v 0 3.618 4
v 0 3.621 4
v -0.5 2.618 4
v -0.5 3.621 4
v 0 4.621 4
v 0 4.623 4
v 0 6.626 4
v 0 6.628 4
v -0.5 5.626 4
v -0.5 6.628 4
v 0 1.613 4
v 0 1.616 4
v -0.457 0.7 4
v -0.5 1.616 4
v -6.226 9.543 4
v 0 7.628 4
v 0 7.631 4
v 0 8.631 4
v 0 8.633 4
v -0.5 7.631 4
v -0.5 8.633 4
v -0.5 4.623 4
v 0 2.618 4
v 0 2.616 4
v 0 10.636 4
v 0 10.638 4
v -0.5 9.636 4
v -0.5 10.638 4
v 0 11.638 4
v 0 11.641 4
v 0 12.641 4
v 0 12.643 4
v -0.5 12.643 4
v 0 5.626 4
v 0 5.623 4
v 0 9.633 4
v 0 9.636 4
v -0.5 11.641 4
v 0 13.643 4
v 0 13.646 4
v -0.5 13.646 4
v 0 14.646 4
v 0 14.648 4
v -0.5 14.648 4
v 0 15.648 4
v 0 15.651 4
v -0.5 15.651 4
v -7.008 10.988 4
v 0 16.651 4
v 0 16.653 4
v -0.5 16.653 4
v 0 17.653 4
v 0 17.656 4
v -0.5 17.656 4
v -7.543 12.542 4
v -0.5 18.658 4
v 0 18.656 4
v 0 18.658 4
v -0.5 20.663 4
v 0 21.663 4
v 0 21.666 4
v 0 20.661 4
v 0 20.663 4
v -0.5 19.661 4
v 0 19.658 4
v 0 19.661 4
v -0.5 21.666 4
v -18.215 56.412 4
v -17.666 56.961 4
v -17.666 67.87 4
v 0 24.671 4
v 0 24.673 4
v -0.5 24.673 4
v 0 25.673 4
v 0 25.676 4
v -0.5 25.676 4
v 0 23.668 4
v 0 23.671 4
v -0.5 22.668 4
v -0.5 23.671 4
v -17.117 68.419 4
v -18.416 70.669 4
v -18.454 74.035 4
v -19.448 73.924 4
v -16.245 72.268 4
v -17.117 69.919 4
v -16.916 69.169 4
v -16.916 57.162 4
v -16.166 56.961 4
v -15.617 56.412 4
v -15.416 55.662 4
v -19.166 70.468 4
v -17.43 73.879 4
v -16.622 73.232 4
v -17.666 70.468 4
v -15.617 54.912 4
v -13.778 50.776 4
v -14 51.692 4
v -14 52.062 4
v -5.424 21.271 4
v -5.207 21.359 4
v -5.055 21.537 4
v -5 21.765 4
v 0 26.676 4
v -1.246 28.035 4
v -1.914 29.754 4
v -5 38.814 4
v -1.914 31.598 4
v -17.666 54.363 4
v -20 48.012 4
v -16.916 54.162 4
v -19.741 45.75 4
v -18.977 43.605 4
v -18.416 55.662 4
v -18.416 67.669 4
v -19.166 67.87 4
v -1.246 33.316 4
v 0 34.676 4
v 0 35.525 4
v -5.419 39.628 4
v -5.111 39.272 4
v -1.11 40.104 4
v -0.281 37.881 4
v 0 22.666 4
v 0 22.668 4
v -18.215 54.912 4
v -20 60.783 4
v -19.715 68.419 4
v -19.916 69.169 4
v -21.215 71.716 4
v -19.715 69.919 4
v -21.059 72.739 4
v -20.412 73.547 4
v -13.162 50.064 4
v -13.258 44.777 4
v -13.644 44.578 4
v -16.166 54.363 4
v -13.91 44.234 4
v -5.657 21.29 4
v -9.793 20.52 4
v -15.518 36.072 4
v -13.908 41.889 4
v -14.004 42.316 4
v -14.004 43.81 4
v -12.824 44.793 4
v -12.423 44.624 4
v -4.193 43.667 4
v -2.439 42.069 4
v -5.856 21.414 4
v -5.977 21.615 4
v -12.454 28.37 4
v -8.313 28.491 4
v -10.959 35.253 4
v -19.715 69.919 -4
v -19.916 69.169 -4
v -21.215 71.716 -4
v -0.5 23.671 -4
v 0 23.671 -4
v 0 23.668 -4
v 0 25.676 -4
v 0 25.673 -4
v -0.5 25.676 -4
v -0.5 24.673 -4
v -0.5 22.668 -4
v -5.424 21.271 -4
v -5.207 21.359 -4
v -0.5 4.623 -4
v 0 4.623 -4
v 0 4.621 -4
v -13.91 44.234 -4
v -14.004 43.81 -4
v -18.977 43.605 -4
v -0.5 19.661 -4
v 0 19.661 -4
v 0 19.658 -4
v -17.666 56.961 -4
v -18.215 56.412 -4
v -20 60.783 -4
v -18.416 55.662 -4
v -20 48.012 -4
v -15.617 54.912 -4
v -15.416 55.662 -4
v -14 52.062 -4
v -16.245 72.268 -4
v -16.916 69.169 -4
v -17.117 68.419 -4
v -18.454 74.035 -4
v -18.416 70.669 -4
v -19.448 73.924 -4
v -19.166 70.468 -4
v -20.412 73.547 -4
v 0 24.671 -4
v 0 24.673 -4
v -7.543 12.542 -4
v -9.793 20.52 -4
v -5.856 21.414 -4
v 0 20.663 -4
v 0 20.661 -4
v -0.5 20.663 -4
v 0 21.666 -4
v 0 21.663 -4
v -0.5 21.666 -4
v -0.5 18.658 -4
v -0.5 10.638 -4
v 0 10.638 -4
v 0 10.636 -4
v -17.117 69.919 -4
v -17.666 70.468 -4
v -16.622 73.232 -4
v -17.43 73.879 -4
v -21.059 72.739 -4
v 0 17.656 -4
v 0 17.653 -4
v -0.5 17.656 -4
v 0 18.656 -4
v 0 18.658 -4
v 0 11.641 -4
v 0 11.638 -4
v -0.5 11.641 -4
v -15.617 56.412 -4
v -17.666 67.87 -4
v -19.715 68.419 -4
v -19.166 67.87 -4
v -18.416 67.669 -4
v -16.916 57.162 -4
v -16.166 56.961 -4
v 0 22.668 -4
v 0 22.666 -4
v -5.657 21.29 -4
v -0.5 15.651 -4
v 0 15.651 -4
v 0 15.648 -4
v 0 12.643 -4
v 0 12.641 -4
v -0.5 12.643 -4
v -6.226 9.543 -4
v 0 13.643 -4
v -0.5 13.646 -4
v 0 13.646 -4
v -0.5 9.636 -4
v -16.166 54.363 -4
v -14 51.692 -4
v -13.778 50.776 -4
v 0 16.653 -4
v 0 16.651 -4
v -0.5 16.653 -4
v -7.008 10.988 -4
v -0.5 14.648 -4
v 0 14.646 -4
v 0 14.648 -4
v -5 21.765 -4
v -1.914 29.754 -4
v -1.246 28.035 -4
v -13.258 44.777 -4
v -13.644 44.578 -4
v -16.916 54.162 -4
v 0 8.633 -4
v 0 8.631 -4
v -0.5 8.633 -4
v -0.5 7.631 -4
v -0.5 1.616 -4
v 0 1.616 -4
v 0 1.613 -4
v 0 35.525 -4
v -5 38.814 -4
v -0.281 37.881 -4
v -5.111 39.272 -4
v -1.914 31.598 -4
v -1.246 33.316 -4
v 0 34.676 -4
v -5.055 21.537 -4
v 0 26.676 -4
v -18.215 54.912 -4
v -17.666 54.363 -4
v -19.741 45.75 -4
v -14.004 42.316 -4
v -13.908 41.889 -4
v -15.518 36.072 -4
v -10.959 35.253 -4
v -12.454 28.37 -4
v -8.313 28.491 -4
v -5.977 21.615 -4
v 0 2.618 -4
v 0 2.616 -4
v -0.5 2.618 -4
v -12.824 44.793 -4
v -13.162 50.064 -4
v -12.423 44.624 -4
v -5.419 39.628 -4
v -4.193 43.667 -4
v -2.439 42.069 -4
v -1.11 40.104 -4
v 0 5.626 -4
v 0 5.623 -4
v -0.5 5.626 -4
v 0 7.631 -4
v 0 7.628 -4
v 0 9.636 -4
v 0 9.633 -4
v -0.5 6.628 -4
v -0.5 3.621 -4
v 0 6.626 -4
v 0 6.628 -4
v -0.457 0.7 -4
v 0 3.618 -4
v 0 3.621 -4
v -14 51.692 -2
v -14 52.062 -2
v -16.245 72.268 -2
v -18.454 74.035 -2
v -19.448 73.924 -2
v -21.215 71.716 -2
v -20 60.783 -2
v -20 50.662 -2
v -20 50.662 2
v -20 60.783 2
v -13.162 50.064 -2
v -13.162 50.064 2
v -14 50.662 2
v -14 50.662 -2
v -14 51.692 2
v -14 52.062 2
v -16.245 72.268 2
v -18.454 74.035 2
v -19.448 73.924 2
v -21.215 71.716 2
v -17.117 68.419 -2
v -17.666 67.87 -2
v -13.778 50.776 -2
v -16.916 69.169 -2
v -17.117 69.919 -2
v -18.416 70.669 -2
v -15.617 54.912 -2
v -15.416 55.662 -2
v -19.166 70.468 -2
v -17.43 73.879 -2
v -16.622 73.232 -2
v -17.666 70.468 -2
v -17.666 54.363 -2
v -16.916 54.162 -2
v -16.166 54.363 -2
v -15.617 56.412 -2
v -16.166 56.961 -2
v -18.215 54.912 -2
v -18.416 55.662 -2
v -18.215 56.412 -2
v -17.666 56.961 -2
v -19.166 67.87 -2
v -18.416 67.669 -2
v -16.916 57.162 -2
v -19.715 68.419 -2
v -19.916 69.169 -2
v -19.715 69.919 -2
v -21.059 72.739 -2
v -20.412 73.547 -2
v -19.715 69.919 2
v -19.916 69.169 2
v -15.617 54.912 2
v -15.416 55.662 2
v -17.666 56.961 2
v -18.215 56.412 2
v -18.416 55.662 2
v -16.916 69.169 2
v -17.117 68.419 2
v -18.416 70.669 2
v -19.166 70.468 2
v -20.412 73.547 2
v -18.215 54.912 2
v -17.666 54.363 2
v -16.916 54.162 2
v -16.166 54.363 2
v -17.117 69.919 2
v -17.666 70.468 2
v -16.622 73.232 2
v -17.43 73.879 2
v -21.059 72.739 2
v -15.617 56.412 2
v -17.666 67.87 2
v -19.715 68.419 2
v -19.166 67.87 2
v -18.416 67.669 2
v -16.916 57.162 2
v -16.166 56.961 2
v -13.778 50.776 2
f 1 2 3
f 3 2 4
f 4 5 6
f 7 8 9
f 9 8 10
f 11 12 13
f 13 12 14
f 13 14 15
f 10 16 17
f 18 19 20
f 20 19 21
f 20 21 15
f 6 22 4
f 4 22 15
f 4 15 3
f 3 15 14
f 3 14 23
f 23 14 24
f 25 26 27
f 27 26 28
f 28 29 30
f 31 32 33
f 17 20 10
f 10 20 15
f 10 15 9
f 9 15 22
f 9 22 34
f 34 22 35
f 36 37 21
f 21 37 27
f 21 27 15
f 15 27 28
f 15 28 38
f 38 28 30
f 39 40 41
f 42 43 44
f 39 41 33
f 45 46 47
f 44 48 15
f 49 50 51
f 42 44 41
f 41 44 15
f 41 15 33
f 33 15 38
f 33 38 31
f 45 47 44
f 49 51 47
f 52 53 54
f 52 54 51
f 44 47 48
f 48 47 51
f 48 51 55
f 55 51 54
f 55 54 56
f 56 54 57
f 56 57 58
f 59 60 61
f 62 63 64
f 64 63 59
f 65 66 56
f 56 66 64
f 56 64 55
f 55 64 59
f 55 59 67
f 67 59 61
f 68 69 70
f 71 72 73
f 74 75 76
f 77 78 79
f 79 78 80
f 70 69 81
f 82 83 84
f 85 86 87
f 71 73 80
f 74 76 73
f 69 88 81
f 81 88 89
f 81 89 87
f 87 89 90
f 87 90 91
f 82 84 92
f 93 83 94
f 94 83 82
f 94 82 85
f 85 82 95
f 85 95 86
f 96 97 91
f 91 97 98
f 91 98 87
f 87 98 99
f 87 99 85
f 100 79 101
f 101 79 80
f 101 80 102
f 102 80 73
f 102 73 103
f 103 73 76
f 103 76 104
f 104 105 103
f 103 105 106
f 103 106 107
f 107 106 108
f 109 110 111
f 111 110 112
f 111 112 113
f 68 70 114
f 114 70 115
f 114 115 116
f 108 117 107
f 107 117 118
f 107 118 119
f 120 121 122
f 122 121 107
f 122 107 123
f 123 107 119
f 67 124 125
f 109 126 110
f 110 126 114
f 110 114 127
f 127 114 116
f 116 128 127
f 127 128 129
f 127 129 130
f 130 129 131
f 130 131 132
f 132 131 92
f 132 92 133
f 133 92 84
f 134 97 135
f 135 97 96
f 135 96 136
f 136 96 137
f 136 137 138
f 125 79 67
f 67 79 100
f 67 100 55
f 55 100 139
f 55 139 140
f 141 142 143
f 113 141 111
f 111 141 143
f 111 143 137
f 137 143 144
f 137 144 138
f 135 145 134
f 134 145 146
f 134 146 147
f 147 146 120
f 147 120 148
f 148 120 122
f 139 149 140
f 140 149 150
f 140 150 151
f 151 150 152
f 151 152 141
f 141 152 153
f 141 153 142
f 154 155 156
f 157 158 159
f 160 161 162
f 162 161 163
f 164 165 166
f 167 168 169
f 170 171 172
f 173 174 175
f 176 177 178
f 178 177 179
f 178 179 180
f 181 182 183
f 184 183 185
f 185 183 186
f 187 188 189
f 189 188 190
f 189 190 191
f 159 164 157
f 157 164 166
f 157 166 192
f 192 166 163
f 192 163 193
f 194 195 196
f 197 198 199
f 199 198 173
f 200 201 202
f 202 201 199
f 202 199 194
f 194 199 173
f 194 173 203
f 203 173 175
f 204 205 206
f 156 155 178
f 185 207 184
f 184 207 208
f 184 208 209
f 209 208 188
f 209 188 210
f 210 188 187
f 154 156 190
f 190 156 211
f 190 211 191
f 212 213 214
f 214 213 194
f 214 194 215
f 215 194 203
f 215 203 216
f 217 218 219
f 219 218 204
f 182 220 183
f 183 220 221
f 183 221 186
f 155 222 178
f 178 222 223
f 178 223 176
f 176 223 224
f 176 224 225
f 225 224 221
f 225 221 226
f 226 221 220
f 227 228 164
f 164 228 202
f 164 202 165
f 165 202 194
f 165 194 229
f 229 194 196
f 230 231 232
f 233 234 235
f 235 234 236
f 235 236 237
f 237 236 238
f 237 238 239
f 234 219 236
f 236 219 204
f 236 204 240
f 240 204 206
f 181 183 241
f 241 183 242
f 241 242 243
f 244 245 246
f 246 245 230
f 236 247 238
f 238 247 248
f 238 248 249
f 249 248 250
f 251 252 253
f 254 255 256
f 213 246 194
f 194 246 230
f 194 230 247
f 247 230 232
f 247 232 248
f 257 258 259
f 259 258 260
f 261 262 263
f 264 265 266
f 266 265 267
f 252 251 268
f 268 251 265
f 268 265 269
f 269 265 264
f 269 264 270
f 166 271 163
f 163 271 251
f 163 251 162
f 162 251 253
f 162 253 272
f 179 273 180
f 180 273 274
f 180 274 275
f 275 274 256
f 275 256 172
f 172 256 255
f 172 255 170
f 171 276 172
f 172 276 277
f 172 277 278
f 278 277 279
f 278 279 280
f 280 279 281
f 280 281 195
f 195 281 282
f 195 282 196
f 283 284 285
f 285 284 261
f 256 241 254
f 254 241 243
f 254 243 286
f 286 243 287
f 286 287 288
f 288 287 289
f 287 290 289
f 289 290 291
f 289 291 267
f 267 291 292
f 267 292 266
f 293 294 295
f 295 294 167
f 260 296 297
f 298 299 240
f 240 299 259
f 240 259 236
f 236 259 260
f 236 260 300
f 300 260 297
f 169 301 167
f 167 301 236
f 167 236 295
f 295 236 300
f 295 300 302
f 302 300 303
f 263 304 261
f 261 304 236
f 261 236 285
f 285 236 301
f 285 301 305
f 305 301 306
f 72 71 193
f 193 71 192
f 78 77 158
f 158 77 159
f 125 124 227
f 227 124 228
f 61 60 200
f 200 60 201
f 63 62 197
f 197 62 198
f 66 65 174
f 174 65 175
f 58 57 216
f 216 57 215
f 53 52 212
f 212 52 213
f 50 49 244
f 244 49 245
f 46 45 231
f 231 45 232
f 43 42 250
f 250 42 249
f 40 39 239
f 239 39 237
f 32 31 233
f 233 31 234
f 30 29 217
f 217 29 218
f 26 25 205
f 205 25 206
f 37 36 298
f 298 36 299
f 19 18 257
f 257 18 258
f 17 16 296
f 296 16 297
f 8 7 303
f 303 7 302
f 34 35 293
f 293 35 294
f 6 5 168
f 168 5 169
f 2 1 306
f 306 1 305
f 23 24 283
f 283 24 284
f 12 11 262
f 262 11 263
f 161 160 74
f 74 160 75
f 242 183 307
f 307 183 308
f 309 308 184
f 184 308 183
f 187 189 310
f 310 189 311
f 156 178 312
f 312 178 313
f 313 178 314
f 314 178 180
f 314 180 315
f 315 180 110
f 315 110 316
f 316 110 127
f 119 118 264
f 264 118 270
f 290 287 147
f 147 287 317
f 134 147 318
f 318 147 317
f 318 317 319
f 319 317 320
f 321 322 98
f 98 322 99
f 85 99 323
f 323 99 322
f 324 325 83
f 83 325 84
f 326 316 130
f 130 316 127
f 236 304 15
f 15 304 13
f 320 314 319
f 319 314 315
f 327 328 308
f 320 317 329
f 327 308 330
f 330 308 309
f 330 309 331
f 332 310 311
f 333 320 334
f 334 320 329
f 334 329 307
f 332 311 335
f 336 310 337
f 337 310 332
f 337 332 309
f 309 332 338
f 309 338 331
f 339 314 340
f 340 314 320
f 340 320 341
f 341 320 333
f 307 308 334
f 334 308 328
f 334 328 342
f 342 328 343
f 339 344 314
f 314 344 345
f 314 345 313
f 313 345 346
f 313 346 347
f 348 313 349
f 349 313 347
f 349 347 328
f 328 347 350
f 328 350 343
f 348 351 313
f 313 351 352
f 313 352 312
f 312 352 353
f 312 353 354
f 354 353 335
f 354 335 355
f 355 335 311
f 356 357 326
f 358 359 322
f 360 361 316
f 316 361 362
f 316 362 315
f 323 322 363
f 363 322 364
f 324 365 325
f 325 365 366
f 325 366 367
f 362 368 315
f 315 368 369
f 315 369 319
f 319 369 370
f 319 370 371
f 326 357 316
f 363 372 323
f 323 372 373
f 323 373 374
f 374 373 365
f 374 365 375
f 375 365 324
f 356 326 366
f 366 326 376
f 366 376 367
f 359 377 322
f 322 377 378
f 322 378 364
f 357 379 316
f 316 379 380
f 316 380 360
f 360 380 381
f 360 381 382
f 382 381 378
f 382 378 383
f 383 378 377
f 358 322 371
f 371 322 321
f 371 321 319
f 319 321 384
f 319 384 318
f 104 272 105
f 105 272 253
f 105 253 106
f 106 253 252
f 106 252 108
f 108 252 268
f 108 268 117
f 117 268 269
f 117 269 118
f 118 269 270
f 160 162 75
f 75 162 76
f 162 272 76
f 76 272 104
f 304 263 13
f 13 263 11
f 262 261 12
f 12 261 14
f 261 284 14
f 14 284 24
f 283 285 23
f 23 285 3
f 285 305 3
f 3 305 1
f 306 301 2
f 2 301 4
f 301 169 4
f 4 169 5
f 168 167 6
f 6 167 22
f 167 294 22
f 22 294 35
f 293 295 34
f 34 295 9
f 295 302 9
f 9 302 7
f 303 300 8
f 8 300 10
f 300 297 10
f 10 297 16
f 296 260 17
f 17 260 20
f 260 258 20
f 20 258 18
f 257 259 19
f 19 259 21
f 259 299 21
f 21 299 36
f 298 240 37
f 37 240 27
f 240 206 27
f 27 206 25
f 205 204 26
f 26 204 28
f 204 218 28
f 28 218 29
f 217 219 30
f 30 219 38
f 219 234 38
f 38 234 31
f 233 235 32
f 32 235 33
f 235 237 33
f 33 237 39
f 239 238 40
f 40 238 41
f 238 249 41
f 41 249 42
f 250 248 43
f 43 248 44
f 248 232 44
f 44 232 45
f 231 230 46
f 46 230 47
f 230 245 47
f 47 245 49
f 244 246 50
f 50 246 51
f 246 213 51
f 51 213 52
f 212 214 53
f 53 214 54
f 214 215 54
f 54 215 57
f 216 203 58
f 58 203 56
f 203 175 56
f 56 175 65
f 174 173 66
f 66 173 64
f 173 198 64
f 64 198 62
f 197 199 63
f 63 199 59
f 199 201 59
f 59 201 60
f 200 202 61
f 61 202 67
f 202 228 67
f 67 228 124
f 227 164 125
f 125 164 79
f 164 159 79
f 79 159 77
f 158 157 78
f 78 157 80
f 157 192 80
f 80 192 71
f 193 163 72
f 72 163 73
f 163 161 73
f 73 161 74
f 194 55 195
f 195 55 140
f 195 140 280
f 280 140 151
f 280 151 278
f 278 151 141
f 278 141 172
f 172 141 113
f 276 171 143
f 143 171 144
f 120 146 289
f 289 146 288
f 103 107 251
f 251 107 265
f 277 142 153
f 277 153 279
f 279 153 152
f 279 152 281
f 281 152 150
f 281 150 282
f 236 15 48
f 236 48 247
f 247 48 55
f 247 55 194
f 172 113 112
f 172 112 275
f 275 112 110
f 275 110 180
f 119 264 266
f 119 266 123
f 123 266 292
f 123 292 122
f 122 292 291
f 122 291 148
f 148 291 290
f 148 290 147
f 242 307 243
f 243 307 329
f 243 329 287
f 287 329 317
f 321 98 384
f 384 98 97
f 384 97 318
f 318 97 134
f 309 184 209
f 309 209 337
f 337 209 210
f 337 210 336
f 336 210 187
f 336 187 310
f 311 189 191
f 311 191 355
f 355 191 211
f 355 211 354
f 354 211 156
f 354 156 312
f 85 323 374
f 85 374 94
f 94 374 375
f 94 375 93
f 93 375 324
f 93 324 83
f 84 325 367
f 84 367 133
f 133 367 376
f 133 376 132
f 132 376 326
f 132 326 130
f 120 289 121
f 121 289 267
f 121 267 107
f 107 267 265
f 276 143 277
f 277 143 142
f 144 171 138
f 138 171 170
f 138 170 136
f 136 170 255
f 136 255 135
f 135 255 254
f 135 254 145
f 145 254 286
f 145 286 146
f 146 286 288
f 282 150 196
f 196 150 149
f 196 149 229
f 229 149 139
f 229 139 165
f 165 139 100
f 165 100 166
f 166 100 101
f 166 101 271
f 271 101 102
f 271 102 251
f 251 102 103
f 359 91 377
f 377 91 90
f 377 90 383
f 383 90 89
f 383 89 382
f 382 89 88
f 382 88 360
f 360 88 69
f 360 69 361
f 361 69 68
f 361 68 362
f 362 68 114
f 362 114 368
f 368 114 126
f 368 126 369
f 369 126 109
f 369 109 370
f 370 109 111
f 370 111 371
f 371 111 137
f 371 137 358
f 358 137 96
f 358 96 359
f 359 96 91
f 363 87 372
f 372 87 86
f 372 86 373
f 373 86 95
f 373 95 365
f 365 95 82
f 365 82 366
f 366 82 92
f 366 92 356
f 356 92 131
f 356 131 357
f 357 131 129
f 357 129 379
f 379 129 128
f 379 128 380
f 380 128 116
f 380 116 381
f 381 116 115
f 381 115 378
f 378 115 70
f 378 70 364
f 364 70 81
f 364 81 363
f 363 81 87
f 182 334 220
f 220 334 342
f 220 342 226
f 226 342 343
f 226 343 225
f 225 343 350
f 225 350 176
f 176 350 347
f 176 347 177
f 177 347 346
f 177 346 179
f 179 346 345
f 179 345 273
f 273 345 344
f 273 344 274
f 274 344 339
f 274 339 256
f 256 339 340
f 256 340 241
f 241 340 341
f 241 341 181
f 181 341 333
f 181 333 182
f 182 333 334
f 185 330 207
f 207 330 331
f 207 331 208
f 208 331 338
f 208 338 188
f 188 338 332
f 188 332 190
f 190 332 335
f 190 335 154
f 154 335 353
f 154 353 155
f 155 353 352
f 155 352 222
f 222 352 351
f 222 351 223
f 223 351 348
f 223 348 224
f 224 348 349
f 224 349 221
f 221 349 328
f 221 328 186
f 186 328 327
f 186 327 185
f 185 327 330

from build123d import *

# Parameters (mm, degrees)
BOSS_EXTRUDE1_DEPTH     = 4
SKETCH2_W               = 20
SKETCH2_H               = 25
CUT_EXTRUDE1_DEPTH      = 2
CUT_EXTRUDE2_DEPTH      = 78.699873386
CUT_EXTRUDE2_DEPTH_BACK = 78.699873386
CUT_EXTRUDE3_DEPTH      = 78.699873386
LPATTERN3_START         = -4
LPATTERN3_DEPTH         = 8
CUT_EXTRUDE4_DEPTH      = 78.699873386
CUT_EXTRUDE5_DEPTH      = 78.699873386
FILLET1_R               = 10
FILLET2_R               = 2
FILLET3_R               = 1
FILLET4_R               = 0.5
SKETCH7_R               = 1.5
CUT_EXTRUDE6_DEPTH      = 78.443079806


# Read off the part's stored shape, not the designer's step: LPattern3
with BuildPart() as part:
    # Sketch1 → Boss-Extrude1 (new, symmetric)
    with BuildSketch(Plane.XY):
        Polygon((0, 0), (-20, 30.652242985), (-20, 60.782242985), (-21.435566599, 73.70273634), (-16.466146078, 74.25487734), (-14.000284373, 52.061445292), (-14.000284373, 50.661445292), (0, 40.6751395), align=None)
    extrude(amount=BOSS_EXTRUDE1_DEPTH, both=True)

    # Sketch2 → Cut-Extrude1 (cut, symmetric)
    with BuildSketch(Plane.XY):
        with Locations((-24.000284373, 63.161445292)):
            Rectangle(SKETCH2_W, SKETCH2_H)
    extrude(amount=CUT_EXTRUDE1_DEPTH, both=True, mode=Mode.SUBTRACT)

    # Sketch3 → Cut-Extrude2 (cut, two sides: drawn at the far end of the back side and taken through both)
    with BuildSketch(Plane.XY.offset(4).offset(-CUT_EXTRUDE2_DEPTH_BACK)):
        with BuildLine():
            Line((91.496624596, 103.297607947), (0, 34.6751395))
            ThreePointArc((0, 34.6751395), (-2, 30.6751395), (0, 26.6751395))
            Line((0, 26.6751395), (91.496624596, -41.947328947))
            Line((91.496624596, -41.947328947), (320.238186086, -41.947328947))
            Line((320.238186086, -41.947328947), (320.238186086, 103.297607947))
            Line((320.238186086, 103.297607947), (91.496624596, 103.297607947))
        make_face()
    extrude(amount=CUT_EXTRUDE2_DEPTH + CUT_EXTRUDE2_DEPTH_BACK, mode=Mode.SUBTRACT)

    # Sketch4 → Cut-Extrude3 (cut, symmetric)
    with BuildSketch(Plane.XY.offset(4)):
        Polygon((0, 26.6751395), (-0.5, 25.6751395), (0, 25.6751395), align=None)
    extrude(amount=CUT_EXTRUDE3_DEPTH, both=True, mode=Mode.SUBTRACT)

    # LPattern3 outline → LPattern3 (cut)
    with BuildSketch(Plane.XY.offset(LPATTERN3_START)):
        Polygon((0, 0), (0, 1.6126395), (-0.456500581, 0.699638337), align=None)
        Polygon((-0.5, 24.6726395), (0, 24.6726395), (0, 25.6726395), align=None)
        Polygon((-0.5, 23.6701395), (0, 23.6701395), (0, 24.6701395), align=None)
        Polygon((-0.5, 22.6676395), (0, 22.6676395), (0, 23.6676395), align=None)
        Polygon((-0.5, 21.6651395), (0, 21.6651395), (0, 22.6651395), align=None)
        Polygon((-0.5, 20.6626395), (0, 20.6626395), (0, 21.6626395), align=None)
        Polygon((-0.5, 19.6601395), (0, 19.6601395), (0, 20.6601395), align=None)
        Polygon((-0.5, 18.6576395), (0, 18.6576395), (0, 19.6576395), align=None)
        Polygon((-0.5, 17.6551395), (0, 17.6551395), (0, 18.6551395), align=None)
        Polygon((-0.5, 16.6526395), (0, 16.6526395), (0, 17.6526395), align=None)
        Polygon((-0.5, 15.6501395), (0, 15.6501395), (0, 16.6501395), align=None)
        Polygon((-0.5, 14.6476395), (0, 14.6476395), (0, 15.6476395), align=None)
        Polygon((-0.5, 13.6451395), (0, 13.6451395), (0, 14.6451395), align=None)
        Polygon((-0.5, 12.6426395), (0, 12.6426395), (0, 13.6426395), align=None)
        Polygon((-0.5, 11.6401395), (0, 11.6401395), (0, 12.6401395), align=None)
        Polygon((-0.5, 10.6376395), (0, 10.6376395), (0, 11.6376395), align=None)
        Polygon((-0.5, 9.6351395), (0, 9.6351395), (0, 10.6351395), align=None)
        Polygon((-0.5, 8.6326395), (0, 8.6326395), (0, 9.6326395), align=None)
        Polygon((-0.5, 7.6301395), (0, 7.6301395), (0, 8.6301395), align=None)
        Polygon((-0.5, 6.6276395), (0, 6.6276395), (0, 7.6276395), align=None)
        Polygon((-0.5, 5.6251395), (0, 5.6251395), (0, 6.6251395), align=None)
        Polygon((-0.5, 4.6226395), (0, 4.6226395), (0, 5.6226395), align=None)
        Polygon((-0.5, 3.6201395), (0, 3.6201395), (0, 4.6201395), align=None)
        Polygon((-0.5, 2.6176395), (0, 2.6176395), (0, 3.6176395), align=None)
        Polygon((-0.5, 1.6151395), (0, 1.6151395), (0, 2.6151395), align=None)
    extrude(amount=LPATTERN3_DEPTH, mode=Mode.SUBTRACT)

    # Sketch5 → Cut-Extrude4 (cut, through all)
    with BuildSketch(Plane.XY.offset(4)):
        with BuildLine():
            Line((-20, 45.652242985), (-20, 30.652242985))
            Line((-20, 30.652242985), (-7.147540984, 10.954408149))
            ThreePointArc((-7.147540984, 10.954408149), (-12.567364929, 28.676109238), (-20, 45.652242985))
        make_face()
    extrude(amount=-CUT_EXTRUDE4_DEPTH, mode=Mode.SUBTRACT)

    # Sketch6 → Cut-Extrude5 (cut, through all)
    with BuildSketch(Plane.XY.offset(4)):
        with BuildLine():
            Line((-14.004117633, 45.750871885), (-5, 39.328297195))
            Line((-5, 39.328297195), (-5, 18.390871885))
            ThreePointArc((-5, 18.390871885), (-9.031897039, 30.419496018), (-14.004117633, 42.090871885))
            Line((-14.004117633, 42.090871885), (-14.004117633, 45.750871885))
        make_face()
    extrude(amount=-CUT_EXTRUDE5_DEPTH, mode=Mode.SUBTRACT)

    # Fillet1
    fillet1_edges = [part.edges().sort_by_distance(p)[0] for p in [
        (-20, 45.652242985, 0),
        (-7.147540984, 10.954408149, 0),
        (0, 40.6751395, 0),
    ]]
    fillet(fillet1_edges, radius=FILLET1_R)

    # Fillet2
    fillet2_edges = [part.edges().sort_by_distance(p)[0] for p in [
        (-14.000284373, 50.661445292, -3),
        (-16.466146078, 74.25487734, -3),
        (-21.435566599, 73.70273634, -3),
        (-14.000284373, 50.661445292, 3),
        (-16.466146078, 74.25487734, 3),
        (-21.435566599, 73.70273634, 3),
    ]]
    fillet(fillet2_edges, radius=FILLET2_R)

    # Fillet3
    fillet3_edges = [part.edges().sort_by_distance(p)[0] for p in [
        (-14.004117633, 42.090871885, 0),
        (-14.004117633, 45.750871885, 0),
        (-5, 39.328297195, 0),
    ]]
    fillet(fillet3_edges, radius=FILLET3_R)

    # Fillet4
    fillet4_edges = [part.edges().sort_by_distance(p)[0] for p in [
        (-5, 18.390871885, 0),
    ]]
    fillet(fillet4_edges, radius=FILLET4_R)

    # Sketch7 → Cut-Extrude6 (cut, through all)
    with BuildSketch(Plane.XY.offset(4)):
        with Locations((-18.416383851, 69.168407775)):
            Circle(SKETCH7_R)
        with Locations((-16.915664614, 55.661522799)):
            Circle(SKETCH7_R)
    extrude(amount=-CUT_EXTRUDE6_DEPTH, mode=Mode.SUBTRACT)


solid = part.part
